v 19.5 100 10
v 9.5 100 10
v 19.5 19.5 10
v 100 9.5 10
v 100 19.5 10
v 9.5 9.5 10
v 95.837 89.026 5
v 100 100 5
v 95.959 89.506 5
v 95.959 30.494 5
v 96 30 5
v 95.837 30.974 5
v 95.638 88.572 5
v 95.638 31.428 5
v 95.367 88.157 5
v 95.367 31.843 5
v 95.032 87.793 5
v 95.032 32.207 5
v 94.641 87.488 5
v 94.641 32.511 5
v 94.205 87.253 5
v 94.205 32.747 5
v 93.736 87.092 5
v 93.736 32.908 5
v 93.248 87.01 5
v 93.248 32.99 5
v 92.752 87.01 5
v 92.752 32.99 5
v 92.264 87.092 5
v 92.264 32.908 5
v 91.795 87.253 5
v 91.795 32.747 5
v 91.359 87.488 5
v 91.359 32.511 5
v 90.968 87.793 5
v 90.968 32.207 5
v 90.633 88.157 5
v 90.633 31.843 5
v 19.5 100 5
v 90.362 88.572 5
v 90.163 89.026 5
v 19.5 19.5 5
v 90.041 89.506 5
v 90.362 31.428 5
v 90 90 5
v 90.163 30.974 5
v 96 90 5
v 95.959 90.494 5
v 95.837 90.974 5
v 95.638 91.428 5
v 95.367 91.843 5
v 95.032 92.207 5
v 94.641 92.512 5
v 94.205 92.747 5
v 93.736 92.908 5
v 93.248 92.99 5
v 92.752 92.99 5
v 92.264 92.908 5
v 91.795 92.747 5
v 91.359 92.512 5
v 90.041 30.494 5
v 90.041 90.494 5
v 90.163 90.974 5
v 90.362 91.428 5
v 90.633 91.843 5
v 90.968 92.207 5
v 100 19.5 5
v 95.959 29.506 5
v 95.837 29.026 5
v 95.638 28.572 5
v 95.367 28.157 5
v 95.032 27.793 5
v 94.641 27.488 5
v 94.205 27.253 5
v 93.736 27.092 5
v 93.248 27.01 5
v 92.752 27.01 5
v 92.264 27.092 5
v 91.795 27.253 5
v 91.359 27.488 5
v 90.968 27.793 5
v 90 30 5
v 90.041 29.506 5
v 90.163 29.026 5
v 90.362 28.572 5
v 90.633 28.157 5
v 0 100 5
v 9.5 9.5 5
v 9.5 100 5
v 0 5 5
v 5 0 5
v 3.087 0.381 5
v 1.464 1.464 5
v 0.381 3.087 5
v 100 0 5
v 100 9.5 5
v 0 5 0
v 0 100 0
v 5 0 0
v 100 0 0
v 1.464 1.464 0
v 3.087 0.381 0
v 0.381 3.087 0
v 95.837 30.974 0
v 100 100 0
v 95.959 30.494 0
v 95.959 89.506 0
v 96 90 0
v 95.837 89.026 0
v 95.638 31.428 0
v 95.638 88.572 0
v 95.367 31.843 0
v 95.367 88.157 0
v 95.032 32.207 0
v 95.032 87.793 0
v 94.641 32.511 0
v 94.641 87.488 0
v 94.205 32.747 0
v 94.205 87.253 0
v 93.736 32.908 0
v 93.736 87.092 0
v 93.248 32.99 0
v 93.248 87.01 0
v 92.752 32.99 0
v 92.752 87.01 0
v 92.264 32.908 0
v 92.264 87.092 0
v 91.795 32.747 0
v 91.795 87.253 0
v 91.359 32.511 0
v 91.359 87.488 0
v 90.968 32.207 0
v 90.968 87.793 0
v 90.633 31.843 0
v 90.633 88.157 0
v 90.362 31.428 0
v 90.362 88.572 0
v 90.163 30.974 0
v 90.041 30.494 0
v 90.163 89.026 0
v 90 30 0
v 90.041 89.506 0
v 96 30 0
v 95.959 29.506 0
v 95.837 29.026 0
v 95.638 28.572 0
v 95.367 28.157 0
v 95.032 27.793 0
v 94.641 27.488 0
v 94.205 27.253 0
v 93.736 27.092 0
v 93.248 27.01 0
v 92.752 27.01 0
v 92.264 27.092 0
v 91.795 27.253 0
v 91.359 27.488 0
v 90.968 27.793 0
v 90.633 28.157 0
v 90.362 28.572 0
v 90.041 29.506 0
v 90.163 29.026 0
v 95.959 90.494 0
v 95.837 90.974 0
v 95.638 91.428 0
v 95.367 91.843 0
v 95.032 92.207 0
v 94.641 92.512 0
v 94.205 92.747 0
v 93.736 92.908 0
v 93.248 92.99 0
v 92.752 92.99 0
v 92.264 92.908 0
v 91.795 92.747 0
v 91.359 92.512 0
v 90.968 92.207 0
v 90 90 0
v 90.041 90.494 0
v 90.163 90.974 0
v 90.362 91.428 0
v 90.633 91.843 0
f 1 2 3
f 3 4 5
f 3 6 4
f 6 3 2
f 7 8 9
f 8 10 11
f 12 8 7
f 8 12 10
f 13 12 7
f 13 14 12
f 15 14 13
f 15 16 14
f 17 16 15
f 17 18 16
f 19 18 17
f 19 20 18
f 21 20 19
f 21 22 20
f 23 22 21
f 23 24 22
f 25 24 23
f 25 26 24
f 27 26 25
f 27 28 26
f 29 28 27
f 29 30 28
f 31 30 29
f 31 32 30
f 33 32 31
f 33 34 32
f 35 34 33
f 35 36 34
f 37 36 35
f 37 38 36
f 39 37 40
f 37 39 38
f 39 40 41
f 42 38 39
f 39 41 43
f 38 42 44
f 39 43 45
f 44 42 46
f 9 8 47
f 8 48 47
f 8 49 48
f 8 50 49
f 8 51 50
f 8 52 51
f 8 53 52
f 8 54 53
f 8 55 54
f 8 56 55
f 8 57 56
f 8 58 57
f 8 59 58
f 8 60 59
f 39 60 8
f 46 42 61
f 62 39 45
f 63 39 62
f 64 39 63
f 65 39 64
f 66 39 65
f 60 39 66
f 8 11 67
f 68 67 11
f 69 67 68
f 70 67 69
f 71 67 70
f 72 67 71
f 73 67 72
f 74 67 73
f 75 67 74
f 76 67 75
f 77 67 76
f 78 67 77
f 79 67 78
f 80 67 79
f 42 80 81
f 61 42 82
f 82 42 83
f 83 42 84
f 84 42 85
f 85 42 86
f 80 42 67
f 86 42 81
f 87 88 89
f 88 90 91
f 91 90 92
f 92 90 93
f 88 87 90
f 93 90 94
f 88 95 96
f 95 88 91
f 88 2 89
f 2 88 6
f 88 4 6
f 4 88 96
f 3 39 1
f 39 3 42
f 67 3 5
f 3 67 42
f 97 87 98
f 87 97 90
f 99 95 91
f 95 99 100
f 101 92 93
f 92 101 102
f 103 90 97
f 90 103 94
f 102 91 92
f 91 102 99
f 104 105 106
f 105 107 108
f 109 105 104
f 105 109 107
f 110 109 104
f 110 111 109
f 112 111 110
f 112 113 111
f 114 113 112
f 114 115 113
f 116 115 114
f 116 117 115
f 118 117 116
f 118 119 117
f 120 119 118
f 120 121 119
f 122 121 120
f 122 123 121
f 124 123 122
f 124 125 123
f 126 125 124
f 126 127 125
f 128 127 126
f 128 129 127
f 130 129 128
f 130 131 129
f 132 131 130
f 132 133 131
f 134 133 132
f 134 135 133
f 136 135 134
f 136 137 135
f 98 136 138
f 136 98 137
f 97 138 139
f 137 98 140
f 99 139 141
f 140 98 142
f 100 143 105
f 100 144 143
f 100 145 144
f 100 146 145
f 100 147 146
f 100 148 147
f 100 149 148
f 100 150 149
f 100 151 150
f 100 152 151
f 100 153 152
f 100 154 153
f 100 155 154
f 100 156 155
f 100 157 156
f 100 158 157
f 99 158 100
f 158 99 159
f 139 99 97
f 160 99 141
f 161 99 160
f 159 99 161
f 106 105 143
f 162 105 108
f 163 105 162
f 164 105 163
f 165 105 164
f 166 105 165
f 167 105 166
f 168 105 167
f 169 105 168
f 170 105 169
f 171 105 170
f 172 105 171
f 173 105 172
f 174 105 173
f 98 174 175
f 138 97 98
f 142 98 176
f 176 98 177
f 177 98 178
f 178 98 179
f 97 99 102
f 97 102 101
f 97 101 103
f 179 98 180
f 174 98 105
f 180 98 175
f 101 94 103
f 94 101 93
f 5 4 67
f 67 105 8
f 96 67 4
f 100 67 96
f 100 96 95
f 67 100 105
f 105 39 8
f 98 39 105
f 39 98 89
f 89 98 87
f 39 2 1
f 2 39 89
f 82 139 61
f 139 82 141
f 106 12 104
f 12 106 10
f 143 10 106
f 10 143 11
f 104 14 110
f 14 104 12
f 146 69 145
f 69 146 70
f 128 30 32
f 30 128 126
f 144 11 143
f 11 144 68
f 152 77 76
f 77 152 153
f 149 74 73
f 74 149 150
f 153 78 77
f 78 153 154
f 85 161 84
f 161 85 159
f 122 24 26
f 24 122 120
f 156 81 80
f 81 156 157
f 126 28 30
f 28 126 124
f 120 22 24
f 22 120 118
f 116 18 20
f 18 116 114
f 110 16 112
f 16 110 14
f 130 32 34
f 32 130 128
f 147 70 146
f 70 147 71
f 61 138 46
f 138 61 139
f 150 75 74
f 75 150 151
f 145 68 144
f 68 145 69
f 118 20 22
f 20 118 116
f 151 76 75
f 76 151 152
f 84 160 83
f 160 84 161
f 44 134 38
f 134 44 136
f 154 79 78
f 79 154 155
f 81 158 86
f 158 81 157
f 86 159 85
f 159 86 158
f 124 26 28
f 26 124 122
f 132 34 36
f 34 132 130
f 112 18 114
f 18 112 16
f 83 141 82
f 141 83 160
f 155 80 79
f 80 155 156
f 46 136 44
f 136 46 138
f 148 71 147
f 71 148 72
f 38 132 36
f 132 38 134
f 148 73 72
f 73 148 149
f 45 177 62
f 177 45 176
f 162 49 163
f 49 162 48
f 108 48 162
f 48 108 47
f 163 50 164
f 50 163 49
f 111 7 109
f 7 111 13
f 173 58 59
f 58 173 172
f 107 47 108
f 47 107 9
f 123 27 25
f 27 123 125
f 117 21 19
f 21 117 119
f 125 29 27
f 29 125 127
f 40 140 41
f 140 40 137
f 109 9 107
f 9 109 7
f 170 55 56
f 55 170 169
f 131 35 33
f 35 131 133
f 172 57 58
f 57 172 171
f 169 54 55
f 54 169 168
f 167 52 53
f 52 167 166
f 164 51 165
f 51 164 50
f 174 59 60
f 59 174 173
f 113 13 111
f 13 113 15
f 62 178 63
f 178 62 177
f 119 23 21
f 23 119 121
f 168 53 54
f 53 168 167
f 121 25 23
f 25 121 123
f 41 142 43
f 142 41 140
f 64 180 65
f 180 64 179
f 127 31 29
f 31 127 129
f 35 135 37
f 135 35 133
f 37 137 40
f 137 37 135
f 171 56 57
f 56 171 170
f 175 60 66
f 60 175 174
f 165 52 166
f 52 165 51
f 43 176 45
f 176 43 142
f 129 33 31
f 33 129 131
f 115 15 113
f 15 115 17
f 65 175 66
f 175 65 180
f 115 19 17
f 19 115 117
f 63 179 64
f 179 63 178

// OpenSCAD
difference()
{
    main();
    split();
}

// main
width = 200;
radius = 5;
// addon   
border = 14;

//////////
// Case //
//////////
module main() {
    translate ([5, 5, 0]) {
        union()
        {
            main_positiv();
            main_addon();
        }
    }
}

module main_addon() {
    difference()
    {
        main_addon_positiv();
        main_addon_negative();
    }
}

module main_addon_positiv() {
    t = (border-radius) / 2;
    w = width - border;
    
    translate ([t, t, 5]) {
        cube([w, w, 5]);
    }
}

module main_addon_negative() {
    l = 10;
    
    t = ((border-radius) / 2) + l;
    w = width - border - 2*l;
    
    translate ([t, t, 5]) {
        color("red"){
            cube([w, w, 5]);
        }
    }
}

module main_positiv() {
    w = width - radius;
    
    minkowski() {
        cube([w, w, 1]);
        cylinder(r=radius,h=4);
    }
}


module split() {                    
    translate([100, 0, 0]) {
        cube([110, 210, 10]);  
    }            
    translate([0, 100, 0]) {
        cube([210, 110, 10]);  
    }   
           
    translate([93, 30, 0]) {
       cylinder(r=3, h=10, $fa=0.5, $fs=0.5);  
    }
                 
    translate([93, 90, 0]) {
       cylinder(r=3, h=10, $fa=0.5, $fs=0.5); 
    }
}
